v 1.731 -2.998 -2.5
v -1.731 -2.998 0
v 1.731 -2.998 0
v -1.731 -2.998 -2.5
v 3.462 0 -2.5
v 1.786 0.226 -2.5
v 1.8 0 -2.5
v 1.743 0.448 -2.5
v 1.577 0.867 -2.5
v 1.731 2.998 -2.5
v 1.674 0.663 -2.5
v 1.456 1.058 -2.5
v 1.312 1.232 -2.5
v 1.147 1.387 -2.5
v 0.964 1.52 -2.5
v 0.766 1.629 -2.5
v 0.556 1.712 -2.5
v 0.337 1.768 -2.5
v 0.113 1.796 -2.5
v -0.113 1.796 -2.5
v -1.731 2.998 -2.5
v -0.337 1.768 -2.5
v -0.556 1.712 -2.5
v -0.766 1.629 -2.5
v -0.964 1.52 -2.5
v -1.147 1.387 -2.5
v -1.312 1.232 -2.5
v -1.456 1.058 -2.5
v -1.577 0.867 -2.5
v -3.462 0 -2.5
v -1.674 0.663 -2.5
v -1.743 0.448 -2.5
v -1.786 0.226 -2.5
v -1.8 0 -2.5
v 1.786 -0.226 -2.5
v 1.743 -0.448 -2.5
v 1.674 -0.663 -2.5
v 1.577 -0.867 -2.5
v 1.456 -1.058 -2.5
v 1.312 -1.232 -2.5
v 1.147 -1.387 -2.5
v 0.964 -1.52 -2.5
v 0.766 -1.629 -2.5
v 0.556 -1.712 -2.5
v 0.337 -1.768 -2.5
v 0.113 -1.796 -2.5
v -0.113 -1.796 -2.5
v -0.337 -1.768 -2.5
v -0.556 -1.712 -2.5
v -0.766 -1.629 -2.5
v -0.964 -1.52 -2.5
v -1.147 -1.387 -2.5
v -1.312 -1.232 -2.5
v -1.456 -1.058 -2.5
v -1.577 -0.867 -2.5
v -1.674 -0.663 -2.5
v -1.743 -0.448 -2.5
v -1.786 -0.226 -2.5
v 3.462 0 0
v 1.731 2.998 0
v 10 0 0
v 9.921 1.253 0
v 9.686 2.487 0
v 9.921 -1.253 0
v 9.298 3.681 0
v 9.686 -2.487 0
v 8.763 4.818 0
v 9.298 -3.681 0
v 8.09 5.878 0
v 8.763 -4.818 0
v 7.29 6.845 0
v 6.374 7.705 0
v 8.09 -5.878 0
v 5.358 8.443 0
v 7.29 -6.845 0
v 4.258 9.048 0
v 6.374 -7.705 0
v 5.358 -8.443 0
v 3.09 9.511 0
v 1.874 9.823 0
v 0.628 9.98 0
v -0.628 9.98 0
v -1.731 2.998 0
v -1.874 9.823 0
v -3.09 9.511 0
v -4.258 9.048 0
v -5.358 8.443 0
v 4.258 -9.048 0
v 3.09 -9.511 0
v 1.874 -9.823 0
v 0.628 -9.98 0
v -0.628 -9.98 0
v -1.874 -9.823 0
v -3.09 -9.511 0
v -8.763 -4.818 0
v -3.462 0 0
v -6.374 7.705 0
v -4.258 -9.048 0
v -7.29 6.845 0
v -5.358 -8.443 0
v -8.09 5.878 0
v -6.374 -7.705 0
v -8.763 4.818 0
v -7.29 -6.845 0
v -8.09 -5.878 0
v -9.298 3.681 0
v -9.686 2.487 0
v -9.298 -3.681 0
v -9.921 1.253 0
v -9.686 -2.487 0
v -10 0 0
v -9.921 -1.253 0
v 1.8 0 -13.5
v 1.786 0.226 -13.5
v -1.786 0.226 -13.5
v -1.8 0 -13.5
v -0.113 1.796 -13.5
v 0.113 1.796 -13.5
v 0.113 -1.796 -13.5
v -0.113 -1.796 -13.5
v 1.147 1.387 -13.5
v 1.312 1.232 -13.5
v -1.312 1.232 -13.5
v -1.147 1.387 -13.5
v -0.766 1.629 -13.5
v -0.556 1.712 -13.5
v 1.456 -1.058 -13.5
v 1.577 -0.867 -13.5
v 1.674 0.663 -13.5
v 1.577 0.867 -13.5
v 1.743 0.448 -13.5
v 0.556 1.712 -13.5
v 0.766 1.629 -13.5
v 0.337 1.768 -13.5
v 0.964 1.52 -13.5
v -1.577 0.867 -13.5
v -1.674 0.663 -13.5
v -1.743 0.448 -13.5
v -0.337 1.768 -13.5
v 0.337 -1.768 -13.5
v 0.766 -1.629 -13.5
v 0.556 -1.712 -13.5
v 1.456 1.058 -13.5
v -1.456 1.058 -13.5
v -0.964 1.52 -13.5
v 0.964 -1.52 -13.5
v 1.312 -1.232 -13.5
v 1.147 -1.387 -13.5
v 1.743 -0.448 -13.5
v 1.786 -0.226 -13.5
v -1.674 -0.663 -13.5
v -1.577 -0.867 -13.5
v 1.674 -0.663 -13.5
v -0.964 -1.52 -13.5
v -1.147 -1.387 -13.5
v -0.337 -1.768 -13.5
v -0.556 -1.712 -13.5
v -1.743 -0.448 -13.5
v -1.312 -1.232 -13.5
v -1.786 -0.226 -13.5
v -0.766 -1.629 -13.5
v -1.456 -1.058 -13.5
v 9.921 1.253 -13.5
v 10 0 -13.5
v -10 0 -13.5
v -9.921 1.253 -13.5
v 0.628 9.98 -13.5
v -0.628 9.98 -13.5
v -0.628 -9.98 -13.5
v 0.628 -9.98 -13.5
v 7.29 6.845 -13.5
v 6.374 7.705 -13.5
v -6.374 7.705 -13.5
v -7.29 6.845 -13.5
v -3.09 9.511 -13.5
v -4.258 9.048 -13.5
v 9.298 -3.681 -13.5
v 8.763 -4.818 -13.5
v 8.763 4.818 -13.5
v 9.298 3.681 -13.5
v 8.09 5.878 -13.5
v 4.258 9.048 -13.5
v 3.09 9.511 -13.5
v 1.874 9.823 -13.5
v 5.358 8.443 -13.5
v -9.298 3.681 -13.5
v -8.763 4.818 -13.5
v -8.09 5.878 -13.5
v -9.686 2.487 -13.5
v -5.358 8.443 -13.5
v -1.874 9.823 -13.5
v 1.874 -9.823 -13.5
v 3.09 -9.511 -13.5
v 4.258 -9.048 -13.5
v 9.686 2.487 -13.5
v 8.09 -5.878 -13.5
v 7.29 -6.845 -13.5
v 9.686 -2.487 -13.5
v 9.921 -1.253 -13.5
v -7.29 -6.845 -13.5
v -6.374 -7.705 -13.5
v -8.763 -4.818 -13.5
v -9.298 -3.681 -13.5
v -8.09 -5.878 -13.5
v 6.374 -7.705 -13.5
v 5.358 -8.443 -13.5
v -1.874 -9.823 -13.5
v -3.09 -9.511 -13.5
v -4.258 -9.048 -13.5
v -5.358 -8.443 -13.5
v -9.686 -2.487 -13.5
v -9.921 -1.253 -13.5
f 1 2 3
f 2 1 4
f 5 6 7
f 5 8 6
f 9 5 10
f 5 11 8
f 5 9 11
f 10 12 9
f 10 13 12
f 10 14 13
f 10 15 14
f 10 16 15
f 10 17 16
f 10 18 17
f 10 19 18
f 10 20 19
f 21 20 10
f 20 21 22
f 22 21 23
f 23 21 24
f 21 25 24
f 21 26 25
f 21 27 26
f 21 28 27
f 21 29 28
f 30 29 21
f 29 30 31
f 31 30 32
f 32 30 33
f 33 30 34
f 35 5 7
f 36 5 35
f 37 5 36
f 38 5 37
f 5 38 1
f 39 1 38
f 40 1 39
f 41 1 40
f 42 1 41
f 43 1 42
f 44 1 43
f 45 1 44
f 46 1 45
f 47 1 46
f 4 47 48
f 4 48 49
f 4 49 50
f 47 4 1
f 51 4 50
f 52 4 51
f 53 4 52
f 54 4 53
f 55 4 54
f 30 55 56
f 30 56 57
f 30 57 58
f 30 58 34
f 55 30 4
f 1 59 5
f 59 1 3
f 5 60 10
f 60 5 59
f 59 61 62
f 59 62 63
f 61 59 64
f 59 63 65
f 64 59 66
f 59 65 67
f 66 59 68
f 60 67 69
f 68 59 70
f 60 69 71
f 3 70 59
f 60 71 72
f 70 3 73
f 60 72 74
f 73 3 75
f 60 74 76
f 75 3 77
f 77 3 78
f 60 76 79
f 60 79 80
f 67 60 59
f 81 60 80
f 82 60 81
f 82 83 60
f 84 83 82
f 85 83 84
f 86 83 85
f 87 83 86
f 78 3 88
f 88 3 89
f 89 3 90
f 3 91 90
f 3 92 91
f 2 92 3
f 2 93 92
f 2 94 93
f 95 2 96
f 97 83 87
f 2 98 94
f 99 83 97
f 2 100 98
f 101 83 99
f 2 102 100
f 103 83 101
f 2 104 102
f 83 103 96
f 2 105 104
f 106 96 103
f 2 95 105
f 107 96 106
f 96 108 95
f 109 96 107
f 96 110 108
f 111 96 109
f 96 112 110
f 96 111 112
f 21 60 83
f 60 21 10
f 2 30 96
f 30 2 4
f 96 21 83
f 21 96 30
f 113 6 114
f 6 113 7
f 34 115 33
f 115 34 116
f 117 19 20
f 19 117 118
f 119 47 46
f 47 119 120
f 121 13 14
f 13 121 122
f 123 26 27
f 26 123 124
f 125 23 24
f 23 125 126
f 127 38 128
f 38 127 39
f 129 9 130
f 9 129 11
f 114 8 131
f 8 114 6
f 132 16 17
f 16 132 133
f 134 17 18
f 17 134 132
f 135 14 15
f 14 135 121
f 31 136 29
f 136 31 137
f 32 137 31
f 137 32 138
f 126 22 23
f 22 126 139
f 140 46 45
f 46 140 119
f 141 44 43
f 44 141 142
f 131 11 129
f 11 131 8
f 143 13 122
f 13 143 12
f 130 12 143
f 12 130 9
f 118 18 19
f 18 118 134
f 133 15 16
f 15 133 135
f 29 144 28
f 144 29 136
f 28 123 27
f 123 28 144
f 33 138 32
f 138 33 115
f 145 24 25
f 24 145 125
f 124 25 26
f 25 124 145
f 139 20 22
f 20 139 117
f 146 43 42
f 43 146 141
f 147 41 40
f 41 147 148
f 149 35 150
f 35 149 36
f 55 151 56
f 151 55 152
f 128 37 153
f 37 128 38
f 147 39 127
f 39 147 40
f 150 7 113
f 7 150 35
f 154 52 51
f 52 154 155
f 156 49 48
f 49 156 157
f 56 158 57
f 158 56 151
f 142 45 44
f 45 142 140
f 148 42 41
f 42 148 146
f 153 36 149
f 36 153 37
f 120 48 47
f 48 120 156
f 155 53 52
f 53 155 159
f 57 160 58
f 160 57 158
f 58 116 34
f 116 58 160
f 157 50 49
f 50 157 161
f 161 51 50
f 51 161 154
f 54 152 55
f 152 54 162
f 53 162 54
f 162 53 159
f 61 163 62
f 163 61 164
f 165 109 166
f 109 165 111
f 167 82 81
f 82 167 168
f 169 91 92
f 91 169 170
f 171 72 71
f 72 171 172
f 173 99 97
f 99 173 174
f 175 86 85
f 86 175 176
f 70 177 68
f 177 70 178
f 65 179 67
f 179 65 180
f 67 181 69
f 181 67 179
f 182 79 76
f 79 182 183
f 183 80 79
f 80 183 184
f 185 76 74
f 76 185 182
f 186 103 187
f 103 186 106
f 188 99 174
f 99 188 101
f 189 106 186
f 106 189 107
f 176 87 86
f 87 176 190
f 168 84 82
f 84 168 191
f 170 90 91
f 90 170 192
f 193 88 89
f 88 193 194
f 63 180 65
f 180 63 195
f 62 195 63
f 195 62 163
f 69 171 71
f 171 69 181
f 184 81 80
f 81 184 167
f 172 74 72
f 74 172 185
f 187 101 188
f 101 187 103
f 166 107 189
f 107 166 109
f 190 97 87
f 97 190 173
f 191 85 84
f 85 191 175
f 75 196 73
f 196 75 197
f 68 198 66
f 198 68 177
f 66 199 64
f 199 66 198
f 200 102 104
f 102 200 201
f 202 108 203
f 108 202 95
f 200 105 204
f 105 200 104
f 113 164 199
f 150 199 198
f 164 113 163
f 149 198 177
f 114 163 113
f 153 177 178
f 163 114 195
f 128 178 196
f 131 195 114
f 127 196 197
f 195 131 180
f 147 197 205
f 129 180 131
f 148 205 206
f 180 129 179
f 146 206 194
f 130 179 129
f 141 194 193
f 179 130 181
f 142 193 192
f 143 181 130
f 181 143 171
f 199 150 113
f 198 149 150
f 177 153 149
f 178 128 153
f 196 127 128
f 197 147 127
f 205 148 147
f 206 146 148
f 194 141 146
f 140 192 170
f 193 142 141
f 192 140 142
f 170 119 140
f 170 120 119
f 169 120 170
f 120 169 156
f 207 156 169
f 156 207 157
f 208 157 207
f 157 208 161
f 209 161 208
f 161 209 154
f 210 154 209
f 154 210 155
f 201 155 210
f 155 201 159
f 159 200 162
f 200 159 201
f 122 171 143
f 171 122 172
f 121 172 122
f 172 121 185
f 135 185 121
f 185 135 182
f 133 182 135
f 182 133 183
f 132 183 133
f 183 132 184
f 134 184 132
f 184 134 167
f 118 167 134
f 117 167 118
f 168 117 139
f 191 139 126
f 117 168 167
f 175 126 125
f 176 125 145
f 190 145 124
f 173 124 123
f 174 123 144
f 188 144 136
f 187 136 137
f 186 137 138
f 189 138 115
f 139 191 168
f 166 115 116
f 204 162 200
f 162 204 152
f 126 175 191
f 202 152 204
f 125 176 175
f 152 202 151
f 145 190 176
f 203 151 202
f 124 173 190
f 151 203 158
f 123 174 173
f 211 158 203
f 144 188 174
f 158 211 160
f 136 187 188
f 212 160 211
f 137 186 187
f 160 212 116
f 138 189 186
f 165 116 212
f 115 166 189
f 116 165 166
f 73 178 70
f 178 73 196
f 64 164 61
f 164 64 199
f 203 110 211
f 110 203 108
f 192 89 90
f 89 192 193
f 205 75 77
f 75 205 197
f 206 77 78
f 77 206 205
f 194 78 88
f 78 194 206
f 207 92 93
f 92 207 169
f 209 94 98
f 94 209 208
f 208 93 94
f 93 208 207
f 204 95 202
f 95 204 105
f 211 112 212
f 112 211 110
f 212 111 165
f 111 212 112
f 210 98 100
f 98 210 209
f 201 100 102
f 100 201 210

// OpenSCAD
$fn = 50;

difference() {
	union() {
		translate(v = [0, 0, -13.5]) {
			cylinder(h = 13.5, r = 10.0);
		}
	}
	union() {
		translate(v = [0, 0, 0]) {
			rotate(a = [0, 0, 0]) {
				difference() {
					union() {
						translate(v = [0, 0, -2.5]) {
							linear_extrude(height = 2.5) {
								polygon(points = [[3.4619999999999997, 0.0], [1.7310000000000003, 2.9981799479017264], [-1.7309999999999992, 2.9981799479017264], [-3.4619999999999997, 4.2397272186481365e-16], [-1.7310000000000014, -2.998179947901726], [1.7309999999999977, -2.9981799479017277]]);
							}
						}
					}
					union();
				}
			}
		}
		#translate(v = [0, 0, -100.0]) {
			cylinder(h = 200, r = 1.8);
		}
	}
}
